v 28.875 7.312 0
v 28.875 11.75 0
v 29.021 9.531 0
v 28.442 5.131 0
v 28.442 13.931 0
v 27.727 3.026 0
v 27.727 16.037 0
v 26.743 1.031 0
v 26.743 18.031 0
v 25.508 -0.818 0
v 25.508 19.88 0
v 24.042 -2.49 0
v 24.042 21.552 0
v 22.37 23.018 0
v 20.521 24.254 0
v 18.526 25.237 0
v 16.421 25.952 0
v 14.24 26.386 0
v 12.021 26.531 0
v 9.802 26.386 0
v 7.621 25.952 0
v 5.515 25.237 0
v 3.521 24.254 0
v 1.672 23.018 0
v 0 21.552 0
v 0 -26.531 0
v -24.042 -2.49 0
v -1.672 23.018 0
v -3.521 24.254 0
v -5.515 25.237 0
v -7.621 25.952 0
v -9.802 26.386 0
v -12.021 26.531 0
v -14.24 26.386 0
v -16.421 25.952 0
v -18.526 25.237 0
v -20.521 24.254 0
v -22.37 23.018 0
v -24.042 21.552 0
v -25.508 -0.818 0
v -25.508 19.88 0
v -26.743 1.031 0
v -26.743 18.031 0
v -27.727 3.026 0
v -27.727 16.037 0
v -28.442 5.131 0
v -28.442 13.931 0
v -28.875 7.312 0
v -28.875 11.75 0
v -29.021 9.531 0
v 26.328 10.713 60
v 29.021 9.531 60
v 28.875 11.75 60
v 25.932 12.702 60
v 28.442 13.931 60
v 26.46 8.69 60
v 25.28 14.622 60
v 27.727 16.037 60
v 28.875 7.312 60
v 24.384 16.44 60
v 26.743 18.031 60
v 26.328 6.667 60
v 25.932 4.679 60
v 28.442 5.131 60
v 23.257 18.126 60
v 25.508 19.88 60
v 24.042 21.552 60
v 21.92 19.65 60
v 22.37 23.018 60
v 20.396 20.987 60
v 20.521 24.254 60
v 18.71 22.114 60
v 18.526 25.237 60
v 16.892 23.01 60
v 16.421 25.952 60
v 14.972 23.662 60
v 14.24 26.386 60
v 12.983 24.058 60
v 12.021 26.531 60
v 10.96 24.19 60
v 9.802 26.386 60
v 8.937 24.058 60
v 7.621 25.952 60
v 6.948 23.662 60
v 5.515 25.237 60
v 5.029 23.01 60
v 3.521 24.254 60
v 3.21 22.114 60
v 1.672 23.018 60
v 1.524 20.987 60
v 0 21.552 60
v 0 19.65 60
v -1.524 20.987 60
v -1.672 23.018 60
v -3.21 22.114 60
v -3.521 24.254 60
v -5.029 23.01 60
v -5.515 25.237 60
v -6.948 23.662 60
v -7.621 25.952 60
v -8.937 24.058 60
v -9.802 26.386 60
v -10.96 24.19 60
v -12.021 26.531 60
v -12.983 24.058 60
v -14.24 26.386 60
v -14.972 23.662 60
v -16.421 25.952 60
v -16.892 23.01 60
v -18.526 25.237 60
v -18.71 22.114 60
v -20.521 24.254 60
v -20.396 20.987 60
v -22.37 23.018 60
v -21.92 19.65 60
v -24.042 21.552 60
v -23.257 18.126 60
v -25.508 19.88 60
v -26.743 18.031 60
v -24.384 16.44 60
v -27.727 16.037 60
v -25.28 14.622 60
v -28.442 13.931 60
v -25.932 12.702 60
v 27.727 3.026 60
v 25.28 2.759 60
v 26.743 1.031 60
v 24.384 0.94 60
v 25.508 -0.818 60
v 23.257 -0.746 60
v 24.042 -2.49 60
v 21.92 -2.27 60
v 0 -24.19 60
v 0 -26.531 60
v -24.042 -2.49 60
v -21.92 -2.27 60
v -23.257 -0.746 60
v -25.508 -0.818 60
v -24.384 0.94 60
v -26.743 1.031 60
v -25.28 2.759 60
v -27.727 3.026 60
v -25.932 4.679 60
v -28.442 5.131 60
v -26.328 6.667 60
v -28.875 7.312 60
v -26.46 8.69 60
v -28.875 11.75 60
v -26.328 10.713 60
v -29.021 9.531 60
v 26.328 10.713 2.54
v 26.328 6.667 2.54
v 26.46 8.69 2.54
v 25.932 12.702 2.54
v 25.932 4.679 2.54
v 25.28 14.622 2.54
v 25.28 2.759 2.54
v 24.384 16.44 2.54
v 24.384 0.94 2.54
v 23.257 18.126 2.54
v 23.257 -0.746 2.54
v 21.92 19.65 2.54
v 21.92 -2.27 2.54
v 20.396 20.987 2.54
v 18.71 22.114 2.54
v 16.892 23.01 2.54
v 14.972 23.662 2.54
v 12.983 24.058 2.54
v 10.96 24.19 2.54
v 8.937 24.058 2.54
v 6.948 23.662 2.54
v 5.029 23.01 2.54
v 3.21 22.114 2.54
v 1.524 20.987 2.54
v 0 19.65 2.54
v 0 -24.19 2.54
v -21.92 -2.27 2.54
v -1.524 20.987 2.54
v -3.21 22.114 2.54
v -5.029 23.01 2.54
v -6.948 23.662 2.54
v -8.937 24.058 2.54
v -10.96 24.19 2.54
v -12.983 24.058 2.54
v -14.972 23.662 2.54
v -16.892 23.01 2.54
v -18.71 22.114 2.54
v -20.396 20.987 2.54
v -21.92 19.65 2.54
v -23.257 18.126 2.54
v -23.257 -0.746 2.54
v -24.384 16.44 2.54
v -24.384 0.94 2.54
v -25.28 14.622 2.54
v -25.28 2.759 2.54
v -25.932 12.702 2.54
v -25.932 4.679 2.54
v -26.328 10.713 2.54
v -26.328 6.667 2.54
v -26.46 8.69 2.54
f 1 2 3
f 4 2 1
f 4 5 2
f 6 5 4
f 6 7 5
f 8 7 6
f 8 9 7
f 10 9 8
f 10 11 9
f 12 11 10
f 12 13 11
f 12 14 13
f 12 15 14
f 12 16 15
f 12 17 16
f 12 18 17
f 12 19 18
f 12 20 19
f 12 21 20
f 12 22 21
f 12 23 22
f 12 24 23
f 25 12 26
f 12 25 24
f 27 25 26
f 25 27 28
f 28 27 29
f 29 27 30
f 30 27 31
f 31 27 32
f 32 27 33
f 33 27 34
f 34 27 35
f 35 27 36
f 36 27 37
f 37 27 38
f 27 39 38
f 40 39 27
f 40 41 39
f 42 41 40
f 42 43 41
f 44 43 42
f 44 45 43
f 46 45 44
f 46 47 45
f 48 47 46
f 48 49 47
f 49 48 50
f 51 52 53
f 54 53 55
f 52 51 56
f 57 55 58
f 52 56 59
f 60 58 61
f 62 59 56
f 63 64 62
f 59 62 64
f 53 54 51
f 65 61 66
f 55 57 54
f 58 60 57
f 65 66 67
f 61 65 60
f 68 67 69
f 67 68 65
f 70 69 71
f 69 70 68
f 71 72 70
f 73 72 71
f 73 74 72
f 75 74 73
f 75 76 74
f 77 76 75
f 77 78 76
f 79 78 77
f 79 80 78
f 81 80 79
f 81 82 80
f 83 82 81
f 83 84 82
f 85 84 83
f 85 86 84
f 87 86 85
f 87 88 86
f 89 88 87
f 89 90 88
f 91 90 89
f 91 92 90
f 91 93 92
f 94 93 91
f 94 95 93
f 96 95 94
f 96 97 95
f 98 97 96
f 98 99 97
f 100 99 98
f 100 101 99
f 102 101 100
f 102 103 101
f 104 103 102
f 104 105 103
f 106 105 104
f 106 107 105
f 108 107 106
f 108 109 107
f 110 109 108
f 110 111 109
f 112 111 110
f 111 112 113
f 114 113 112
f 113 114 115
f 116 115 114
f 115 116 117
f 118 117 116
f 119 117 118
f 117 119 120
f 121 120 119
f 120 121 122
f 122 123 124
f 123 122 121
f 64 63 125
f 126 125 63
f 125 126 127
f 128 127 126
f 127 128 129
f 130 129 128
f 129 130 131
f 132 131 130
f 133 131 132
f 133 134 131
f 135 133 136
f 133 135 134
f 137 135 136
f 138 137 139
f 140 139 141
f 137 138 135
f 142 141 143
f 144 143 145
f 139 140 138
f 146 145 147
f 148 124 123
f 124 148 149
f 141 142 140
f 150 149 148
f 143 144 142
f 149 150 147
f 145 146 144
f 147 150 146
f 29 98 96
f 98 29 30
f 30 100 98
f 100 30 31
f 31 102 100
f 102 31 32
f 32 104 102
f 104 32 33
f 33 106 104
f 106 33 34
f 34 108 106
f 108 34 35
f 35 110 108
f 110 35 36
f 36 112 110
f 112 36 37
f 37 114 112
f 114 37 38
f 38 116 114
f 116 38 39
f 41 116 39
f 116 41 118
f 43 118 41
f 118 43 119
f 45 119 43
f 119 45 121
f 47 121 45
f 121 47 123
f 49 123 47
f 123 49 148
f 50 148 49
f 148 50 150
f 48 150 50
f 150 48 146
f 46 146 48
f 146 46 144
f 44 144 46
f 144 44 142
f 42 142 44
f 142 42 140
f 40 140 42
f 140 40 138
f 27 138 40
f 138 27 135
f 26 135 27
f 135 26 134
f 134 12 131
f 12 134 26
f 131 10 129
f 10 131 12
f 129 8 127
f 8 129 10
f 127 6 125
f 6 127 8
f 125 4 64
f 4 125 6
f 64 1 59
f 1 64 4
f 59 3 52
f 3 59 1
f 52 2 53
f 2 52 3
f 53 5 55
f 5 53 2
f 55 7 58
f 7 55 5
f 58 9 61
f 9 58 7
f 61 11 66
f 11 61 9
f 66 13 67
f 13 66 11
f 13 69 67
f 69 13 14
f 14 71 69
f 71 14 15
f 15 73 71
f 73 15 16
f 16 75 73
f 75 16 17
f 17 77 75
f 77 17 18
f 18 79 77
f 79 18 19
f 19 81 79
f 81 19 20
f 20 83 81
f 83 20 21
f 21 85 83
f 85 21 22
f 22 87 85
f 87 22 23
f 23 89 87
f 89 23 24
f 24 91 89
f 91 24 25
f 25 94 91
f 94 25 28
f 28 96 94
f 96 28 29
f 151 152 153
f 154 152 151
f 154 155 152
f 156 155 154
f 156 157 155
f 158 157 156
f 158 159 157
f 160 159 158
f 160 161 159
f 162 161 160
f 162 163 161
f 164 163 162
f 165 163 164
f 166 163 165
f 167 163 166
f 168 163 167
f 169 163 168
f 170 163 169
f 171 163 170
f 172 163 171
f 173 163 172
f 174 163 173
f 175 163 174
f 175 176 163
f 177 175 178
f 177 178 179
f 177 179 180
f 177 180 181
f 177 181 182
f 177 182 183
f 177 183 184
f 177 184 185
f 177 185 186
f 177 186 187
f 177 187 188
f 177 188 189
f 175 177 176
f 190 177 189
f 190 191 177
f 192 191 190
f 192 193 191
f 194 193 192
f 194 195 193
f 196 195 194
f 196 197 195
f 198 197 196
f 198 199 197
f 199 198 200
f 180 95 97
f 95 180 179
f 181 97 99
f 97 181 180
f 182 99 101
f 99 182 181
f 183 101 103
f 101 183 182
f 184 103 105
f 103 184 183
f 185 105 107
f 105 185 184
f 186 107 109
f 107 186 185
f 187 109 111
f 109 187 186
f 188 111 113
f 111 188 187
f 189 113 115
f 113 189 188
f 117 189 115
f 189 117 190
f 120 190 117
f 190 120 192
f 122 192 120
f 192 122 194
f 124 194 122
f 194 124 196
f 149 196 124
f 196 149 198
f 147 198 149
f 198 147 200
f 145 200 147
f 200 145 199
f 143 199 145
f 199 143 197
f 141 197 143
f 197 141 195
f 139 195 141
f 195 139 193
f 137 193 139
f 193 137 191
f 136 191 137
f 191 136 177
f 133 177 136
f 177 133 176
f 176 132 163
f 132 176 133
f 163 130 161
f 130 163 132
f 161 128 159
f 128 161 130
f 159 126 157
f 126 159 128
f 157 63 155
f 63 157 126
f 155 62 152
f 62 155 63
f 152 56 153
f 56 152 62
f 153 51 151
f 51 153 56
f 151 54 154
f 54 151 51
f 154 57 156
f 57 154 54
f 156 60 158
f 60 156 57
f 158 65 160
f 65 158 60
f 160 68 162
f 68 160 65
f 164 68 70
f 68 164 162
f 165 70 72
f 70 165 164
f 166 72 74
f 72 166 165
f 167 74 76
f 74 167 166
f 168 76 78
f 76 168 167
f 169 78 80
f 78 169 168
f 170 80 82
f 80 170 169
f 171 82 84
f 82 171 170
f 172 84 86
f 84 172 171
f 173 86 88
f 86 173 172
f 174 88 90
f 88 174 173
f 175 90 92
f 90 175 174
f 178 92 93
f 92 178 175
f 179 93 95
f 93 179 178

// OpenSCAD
radius = 17.0;

module heart_sub_component(radius) {
    rotated_angle = 45;
    diameter = radius * 2;
    $fn = 48;

    translate([-radius * cos(rotated_angle), 0, 0]) 
        rotate(-rotated_angle) union() {
            circle(radius);
            translate([0, -radius, 0]) 
                square(diameter);
        }
}

module heart(radius) {
    center_offset_y = 1.5 * radius * sin(45) - 0.5 * radius;

    translate([0, center_offset_y, 0]) union() {
        heart_sub_component(radius);
        mirror([1, 0, 0]) heart_sub_component(radius);
    }
}

difference() {
    linear_extrude(height=60) {
        heart(radius);
    }

    translate([0, 0, 2.54]) {
        linear_extrude(height=80) {
            heart(radius - 1.5);
        }
    }
}
